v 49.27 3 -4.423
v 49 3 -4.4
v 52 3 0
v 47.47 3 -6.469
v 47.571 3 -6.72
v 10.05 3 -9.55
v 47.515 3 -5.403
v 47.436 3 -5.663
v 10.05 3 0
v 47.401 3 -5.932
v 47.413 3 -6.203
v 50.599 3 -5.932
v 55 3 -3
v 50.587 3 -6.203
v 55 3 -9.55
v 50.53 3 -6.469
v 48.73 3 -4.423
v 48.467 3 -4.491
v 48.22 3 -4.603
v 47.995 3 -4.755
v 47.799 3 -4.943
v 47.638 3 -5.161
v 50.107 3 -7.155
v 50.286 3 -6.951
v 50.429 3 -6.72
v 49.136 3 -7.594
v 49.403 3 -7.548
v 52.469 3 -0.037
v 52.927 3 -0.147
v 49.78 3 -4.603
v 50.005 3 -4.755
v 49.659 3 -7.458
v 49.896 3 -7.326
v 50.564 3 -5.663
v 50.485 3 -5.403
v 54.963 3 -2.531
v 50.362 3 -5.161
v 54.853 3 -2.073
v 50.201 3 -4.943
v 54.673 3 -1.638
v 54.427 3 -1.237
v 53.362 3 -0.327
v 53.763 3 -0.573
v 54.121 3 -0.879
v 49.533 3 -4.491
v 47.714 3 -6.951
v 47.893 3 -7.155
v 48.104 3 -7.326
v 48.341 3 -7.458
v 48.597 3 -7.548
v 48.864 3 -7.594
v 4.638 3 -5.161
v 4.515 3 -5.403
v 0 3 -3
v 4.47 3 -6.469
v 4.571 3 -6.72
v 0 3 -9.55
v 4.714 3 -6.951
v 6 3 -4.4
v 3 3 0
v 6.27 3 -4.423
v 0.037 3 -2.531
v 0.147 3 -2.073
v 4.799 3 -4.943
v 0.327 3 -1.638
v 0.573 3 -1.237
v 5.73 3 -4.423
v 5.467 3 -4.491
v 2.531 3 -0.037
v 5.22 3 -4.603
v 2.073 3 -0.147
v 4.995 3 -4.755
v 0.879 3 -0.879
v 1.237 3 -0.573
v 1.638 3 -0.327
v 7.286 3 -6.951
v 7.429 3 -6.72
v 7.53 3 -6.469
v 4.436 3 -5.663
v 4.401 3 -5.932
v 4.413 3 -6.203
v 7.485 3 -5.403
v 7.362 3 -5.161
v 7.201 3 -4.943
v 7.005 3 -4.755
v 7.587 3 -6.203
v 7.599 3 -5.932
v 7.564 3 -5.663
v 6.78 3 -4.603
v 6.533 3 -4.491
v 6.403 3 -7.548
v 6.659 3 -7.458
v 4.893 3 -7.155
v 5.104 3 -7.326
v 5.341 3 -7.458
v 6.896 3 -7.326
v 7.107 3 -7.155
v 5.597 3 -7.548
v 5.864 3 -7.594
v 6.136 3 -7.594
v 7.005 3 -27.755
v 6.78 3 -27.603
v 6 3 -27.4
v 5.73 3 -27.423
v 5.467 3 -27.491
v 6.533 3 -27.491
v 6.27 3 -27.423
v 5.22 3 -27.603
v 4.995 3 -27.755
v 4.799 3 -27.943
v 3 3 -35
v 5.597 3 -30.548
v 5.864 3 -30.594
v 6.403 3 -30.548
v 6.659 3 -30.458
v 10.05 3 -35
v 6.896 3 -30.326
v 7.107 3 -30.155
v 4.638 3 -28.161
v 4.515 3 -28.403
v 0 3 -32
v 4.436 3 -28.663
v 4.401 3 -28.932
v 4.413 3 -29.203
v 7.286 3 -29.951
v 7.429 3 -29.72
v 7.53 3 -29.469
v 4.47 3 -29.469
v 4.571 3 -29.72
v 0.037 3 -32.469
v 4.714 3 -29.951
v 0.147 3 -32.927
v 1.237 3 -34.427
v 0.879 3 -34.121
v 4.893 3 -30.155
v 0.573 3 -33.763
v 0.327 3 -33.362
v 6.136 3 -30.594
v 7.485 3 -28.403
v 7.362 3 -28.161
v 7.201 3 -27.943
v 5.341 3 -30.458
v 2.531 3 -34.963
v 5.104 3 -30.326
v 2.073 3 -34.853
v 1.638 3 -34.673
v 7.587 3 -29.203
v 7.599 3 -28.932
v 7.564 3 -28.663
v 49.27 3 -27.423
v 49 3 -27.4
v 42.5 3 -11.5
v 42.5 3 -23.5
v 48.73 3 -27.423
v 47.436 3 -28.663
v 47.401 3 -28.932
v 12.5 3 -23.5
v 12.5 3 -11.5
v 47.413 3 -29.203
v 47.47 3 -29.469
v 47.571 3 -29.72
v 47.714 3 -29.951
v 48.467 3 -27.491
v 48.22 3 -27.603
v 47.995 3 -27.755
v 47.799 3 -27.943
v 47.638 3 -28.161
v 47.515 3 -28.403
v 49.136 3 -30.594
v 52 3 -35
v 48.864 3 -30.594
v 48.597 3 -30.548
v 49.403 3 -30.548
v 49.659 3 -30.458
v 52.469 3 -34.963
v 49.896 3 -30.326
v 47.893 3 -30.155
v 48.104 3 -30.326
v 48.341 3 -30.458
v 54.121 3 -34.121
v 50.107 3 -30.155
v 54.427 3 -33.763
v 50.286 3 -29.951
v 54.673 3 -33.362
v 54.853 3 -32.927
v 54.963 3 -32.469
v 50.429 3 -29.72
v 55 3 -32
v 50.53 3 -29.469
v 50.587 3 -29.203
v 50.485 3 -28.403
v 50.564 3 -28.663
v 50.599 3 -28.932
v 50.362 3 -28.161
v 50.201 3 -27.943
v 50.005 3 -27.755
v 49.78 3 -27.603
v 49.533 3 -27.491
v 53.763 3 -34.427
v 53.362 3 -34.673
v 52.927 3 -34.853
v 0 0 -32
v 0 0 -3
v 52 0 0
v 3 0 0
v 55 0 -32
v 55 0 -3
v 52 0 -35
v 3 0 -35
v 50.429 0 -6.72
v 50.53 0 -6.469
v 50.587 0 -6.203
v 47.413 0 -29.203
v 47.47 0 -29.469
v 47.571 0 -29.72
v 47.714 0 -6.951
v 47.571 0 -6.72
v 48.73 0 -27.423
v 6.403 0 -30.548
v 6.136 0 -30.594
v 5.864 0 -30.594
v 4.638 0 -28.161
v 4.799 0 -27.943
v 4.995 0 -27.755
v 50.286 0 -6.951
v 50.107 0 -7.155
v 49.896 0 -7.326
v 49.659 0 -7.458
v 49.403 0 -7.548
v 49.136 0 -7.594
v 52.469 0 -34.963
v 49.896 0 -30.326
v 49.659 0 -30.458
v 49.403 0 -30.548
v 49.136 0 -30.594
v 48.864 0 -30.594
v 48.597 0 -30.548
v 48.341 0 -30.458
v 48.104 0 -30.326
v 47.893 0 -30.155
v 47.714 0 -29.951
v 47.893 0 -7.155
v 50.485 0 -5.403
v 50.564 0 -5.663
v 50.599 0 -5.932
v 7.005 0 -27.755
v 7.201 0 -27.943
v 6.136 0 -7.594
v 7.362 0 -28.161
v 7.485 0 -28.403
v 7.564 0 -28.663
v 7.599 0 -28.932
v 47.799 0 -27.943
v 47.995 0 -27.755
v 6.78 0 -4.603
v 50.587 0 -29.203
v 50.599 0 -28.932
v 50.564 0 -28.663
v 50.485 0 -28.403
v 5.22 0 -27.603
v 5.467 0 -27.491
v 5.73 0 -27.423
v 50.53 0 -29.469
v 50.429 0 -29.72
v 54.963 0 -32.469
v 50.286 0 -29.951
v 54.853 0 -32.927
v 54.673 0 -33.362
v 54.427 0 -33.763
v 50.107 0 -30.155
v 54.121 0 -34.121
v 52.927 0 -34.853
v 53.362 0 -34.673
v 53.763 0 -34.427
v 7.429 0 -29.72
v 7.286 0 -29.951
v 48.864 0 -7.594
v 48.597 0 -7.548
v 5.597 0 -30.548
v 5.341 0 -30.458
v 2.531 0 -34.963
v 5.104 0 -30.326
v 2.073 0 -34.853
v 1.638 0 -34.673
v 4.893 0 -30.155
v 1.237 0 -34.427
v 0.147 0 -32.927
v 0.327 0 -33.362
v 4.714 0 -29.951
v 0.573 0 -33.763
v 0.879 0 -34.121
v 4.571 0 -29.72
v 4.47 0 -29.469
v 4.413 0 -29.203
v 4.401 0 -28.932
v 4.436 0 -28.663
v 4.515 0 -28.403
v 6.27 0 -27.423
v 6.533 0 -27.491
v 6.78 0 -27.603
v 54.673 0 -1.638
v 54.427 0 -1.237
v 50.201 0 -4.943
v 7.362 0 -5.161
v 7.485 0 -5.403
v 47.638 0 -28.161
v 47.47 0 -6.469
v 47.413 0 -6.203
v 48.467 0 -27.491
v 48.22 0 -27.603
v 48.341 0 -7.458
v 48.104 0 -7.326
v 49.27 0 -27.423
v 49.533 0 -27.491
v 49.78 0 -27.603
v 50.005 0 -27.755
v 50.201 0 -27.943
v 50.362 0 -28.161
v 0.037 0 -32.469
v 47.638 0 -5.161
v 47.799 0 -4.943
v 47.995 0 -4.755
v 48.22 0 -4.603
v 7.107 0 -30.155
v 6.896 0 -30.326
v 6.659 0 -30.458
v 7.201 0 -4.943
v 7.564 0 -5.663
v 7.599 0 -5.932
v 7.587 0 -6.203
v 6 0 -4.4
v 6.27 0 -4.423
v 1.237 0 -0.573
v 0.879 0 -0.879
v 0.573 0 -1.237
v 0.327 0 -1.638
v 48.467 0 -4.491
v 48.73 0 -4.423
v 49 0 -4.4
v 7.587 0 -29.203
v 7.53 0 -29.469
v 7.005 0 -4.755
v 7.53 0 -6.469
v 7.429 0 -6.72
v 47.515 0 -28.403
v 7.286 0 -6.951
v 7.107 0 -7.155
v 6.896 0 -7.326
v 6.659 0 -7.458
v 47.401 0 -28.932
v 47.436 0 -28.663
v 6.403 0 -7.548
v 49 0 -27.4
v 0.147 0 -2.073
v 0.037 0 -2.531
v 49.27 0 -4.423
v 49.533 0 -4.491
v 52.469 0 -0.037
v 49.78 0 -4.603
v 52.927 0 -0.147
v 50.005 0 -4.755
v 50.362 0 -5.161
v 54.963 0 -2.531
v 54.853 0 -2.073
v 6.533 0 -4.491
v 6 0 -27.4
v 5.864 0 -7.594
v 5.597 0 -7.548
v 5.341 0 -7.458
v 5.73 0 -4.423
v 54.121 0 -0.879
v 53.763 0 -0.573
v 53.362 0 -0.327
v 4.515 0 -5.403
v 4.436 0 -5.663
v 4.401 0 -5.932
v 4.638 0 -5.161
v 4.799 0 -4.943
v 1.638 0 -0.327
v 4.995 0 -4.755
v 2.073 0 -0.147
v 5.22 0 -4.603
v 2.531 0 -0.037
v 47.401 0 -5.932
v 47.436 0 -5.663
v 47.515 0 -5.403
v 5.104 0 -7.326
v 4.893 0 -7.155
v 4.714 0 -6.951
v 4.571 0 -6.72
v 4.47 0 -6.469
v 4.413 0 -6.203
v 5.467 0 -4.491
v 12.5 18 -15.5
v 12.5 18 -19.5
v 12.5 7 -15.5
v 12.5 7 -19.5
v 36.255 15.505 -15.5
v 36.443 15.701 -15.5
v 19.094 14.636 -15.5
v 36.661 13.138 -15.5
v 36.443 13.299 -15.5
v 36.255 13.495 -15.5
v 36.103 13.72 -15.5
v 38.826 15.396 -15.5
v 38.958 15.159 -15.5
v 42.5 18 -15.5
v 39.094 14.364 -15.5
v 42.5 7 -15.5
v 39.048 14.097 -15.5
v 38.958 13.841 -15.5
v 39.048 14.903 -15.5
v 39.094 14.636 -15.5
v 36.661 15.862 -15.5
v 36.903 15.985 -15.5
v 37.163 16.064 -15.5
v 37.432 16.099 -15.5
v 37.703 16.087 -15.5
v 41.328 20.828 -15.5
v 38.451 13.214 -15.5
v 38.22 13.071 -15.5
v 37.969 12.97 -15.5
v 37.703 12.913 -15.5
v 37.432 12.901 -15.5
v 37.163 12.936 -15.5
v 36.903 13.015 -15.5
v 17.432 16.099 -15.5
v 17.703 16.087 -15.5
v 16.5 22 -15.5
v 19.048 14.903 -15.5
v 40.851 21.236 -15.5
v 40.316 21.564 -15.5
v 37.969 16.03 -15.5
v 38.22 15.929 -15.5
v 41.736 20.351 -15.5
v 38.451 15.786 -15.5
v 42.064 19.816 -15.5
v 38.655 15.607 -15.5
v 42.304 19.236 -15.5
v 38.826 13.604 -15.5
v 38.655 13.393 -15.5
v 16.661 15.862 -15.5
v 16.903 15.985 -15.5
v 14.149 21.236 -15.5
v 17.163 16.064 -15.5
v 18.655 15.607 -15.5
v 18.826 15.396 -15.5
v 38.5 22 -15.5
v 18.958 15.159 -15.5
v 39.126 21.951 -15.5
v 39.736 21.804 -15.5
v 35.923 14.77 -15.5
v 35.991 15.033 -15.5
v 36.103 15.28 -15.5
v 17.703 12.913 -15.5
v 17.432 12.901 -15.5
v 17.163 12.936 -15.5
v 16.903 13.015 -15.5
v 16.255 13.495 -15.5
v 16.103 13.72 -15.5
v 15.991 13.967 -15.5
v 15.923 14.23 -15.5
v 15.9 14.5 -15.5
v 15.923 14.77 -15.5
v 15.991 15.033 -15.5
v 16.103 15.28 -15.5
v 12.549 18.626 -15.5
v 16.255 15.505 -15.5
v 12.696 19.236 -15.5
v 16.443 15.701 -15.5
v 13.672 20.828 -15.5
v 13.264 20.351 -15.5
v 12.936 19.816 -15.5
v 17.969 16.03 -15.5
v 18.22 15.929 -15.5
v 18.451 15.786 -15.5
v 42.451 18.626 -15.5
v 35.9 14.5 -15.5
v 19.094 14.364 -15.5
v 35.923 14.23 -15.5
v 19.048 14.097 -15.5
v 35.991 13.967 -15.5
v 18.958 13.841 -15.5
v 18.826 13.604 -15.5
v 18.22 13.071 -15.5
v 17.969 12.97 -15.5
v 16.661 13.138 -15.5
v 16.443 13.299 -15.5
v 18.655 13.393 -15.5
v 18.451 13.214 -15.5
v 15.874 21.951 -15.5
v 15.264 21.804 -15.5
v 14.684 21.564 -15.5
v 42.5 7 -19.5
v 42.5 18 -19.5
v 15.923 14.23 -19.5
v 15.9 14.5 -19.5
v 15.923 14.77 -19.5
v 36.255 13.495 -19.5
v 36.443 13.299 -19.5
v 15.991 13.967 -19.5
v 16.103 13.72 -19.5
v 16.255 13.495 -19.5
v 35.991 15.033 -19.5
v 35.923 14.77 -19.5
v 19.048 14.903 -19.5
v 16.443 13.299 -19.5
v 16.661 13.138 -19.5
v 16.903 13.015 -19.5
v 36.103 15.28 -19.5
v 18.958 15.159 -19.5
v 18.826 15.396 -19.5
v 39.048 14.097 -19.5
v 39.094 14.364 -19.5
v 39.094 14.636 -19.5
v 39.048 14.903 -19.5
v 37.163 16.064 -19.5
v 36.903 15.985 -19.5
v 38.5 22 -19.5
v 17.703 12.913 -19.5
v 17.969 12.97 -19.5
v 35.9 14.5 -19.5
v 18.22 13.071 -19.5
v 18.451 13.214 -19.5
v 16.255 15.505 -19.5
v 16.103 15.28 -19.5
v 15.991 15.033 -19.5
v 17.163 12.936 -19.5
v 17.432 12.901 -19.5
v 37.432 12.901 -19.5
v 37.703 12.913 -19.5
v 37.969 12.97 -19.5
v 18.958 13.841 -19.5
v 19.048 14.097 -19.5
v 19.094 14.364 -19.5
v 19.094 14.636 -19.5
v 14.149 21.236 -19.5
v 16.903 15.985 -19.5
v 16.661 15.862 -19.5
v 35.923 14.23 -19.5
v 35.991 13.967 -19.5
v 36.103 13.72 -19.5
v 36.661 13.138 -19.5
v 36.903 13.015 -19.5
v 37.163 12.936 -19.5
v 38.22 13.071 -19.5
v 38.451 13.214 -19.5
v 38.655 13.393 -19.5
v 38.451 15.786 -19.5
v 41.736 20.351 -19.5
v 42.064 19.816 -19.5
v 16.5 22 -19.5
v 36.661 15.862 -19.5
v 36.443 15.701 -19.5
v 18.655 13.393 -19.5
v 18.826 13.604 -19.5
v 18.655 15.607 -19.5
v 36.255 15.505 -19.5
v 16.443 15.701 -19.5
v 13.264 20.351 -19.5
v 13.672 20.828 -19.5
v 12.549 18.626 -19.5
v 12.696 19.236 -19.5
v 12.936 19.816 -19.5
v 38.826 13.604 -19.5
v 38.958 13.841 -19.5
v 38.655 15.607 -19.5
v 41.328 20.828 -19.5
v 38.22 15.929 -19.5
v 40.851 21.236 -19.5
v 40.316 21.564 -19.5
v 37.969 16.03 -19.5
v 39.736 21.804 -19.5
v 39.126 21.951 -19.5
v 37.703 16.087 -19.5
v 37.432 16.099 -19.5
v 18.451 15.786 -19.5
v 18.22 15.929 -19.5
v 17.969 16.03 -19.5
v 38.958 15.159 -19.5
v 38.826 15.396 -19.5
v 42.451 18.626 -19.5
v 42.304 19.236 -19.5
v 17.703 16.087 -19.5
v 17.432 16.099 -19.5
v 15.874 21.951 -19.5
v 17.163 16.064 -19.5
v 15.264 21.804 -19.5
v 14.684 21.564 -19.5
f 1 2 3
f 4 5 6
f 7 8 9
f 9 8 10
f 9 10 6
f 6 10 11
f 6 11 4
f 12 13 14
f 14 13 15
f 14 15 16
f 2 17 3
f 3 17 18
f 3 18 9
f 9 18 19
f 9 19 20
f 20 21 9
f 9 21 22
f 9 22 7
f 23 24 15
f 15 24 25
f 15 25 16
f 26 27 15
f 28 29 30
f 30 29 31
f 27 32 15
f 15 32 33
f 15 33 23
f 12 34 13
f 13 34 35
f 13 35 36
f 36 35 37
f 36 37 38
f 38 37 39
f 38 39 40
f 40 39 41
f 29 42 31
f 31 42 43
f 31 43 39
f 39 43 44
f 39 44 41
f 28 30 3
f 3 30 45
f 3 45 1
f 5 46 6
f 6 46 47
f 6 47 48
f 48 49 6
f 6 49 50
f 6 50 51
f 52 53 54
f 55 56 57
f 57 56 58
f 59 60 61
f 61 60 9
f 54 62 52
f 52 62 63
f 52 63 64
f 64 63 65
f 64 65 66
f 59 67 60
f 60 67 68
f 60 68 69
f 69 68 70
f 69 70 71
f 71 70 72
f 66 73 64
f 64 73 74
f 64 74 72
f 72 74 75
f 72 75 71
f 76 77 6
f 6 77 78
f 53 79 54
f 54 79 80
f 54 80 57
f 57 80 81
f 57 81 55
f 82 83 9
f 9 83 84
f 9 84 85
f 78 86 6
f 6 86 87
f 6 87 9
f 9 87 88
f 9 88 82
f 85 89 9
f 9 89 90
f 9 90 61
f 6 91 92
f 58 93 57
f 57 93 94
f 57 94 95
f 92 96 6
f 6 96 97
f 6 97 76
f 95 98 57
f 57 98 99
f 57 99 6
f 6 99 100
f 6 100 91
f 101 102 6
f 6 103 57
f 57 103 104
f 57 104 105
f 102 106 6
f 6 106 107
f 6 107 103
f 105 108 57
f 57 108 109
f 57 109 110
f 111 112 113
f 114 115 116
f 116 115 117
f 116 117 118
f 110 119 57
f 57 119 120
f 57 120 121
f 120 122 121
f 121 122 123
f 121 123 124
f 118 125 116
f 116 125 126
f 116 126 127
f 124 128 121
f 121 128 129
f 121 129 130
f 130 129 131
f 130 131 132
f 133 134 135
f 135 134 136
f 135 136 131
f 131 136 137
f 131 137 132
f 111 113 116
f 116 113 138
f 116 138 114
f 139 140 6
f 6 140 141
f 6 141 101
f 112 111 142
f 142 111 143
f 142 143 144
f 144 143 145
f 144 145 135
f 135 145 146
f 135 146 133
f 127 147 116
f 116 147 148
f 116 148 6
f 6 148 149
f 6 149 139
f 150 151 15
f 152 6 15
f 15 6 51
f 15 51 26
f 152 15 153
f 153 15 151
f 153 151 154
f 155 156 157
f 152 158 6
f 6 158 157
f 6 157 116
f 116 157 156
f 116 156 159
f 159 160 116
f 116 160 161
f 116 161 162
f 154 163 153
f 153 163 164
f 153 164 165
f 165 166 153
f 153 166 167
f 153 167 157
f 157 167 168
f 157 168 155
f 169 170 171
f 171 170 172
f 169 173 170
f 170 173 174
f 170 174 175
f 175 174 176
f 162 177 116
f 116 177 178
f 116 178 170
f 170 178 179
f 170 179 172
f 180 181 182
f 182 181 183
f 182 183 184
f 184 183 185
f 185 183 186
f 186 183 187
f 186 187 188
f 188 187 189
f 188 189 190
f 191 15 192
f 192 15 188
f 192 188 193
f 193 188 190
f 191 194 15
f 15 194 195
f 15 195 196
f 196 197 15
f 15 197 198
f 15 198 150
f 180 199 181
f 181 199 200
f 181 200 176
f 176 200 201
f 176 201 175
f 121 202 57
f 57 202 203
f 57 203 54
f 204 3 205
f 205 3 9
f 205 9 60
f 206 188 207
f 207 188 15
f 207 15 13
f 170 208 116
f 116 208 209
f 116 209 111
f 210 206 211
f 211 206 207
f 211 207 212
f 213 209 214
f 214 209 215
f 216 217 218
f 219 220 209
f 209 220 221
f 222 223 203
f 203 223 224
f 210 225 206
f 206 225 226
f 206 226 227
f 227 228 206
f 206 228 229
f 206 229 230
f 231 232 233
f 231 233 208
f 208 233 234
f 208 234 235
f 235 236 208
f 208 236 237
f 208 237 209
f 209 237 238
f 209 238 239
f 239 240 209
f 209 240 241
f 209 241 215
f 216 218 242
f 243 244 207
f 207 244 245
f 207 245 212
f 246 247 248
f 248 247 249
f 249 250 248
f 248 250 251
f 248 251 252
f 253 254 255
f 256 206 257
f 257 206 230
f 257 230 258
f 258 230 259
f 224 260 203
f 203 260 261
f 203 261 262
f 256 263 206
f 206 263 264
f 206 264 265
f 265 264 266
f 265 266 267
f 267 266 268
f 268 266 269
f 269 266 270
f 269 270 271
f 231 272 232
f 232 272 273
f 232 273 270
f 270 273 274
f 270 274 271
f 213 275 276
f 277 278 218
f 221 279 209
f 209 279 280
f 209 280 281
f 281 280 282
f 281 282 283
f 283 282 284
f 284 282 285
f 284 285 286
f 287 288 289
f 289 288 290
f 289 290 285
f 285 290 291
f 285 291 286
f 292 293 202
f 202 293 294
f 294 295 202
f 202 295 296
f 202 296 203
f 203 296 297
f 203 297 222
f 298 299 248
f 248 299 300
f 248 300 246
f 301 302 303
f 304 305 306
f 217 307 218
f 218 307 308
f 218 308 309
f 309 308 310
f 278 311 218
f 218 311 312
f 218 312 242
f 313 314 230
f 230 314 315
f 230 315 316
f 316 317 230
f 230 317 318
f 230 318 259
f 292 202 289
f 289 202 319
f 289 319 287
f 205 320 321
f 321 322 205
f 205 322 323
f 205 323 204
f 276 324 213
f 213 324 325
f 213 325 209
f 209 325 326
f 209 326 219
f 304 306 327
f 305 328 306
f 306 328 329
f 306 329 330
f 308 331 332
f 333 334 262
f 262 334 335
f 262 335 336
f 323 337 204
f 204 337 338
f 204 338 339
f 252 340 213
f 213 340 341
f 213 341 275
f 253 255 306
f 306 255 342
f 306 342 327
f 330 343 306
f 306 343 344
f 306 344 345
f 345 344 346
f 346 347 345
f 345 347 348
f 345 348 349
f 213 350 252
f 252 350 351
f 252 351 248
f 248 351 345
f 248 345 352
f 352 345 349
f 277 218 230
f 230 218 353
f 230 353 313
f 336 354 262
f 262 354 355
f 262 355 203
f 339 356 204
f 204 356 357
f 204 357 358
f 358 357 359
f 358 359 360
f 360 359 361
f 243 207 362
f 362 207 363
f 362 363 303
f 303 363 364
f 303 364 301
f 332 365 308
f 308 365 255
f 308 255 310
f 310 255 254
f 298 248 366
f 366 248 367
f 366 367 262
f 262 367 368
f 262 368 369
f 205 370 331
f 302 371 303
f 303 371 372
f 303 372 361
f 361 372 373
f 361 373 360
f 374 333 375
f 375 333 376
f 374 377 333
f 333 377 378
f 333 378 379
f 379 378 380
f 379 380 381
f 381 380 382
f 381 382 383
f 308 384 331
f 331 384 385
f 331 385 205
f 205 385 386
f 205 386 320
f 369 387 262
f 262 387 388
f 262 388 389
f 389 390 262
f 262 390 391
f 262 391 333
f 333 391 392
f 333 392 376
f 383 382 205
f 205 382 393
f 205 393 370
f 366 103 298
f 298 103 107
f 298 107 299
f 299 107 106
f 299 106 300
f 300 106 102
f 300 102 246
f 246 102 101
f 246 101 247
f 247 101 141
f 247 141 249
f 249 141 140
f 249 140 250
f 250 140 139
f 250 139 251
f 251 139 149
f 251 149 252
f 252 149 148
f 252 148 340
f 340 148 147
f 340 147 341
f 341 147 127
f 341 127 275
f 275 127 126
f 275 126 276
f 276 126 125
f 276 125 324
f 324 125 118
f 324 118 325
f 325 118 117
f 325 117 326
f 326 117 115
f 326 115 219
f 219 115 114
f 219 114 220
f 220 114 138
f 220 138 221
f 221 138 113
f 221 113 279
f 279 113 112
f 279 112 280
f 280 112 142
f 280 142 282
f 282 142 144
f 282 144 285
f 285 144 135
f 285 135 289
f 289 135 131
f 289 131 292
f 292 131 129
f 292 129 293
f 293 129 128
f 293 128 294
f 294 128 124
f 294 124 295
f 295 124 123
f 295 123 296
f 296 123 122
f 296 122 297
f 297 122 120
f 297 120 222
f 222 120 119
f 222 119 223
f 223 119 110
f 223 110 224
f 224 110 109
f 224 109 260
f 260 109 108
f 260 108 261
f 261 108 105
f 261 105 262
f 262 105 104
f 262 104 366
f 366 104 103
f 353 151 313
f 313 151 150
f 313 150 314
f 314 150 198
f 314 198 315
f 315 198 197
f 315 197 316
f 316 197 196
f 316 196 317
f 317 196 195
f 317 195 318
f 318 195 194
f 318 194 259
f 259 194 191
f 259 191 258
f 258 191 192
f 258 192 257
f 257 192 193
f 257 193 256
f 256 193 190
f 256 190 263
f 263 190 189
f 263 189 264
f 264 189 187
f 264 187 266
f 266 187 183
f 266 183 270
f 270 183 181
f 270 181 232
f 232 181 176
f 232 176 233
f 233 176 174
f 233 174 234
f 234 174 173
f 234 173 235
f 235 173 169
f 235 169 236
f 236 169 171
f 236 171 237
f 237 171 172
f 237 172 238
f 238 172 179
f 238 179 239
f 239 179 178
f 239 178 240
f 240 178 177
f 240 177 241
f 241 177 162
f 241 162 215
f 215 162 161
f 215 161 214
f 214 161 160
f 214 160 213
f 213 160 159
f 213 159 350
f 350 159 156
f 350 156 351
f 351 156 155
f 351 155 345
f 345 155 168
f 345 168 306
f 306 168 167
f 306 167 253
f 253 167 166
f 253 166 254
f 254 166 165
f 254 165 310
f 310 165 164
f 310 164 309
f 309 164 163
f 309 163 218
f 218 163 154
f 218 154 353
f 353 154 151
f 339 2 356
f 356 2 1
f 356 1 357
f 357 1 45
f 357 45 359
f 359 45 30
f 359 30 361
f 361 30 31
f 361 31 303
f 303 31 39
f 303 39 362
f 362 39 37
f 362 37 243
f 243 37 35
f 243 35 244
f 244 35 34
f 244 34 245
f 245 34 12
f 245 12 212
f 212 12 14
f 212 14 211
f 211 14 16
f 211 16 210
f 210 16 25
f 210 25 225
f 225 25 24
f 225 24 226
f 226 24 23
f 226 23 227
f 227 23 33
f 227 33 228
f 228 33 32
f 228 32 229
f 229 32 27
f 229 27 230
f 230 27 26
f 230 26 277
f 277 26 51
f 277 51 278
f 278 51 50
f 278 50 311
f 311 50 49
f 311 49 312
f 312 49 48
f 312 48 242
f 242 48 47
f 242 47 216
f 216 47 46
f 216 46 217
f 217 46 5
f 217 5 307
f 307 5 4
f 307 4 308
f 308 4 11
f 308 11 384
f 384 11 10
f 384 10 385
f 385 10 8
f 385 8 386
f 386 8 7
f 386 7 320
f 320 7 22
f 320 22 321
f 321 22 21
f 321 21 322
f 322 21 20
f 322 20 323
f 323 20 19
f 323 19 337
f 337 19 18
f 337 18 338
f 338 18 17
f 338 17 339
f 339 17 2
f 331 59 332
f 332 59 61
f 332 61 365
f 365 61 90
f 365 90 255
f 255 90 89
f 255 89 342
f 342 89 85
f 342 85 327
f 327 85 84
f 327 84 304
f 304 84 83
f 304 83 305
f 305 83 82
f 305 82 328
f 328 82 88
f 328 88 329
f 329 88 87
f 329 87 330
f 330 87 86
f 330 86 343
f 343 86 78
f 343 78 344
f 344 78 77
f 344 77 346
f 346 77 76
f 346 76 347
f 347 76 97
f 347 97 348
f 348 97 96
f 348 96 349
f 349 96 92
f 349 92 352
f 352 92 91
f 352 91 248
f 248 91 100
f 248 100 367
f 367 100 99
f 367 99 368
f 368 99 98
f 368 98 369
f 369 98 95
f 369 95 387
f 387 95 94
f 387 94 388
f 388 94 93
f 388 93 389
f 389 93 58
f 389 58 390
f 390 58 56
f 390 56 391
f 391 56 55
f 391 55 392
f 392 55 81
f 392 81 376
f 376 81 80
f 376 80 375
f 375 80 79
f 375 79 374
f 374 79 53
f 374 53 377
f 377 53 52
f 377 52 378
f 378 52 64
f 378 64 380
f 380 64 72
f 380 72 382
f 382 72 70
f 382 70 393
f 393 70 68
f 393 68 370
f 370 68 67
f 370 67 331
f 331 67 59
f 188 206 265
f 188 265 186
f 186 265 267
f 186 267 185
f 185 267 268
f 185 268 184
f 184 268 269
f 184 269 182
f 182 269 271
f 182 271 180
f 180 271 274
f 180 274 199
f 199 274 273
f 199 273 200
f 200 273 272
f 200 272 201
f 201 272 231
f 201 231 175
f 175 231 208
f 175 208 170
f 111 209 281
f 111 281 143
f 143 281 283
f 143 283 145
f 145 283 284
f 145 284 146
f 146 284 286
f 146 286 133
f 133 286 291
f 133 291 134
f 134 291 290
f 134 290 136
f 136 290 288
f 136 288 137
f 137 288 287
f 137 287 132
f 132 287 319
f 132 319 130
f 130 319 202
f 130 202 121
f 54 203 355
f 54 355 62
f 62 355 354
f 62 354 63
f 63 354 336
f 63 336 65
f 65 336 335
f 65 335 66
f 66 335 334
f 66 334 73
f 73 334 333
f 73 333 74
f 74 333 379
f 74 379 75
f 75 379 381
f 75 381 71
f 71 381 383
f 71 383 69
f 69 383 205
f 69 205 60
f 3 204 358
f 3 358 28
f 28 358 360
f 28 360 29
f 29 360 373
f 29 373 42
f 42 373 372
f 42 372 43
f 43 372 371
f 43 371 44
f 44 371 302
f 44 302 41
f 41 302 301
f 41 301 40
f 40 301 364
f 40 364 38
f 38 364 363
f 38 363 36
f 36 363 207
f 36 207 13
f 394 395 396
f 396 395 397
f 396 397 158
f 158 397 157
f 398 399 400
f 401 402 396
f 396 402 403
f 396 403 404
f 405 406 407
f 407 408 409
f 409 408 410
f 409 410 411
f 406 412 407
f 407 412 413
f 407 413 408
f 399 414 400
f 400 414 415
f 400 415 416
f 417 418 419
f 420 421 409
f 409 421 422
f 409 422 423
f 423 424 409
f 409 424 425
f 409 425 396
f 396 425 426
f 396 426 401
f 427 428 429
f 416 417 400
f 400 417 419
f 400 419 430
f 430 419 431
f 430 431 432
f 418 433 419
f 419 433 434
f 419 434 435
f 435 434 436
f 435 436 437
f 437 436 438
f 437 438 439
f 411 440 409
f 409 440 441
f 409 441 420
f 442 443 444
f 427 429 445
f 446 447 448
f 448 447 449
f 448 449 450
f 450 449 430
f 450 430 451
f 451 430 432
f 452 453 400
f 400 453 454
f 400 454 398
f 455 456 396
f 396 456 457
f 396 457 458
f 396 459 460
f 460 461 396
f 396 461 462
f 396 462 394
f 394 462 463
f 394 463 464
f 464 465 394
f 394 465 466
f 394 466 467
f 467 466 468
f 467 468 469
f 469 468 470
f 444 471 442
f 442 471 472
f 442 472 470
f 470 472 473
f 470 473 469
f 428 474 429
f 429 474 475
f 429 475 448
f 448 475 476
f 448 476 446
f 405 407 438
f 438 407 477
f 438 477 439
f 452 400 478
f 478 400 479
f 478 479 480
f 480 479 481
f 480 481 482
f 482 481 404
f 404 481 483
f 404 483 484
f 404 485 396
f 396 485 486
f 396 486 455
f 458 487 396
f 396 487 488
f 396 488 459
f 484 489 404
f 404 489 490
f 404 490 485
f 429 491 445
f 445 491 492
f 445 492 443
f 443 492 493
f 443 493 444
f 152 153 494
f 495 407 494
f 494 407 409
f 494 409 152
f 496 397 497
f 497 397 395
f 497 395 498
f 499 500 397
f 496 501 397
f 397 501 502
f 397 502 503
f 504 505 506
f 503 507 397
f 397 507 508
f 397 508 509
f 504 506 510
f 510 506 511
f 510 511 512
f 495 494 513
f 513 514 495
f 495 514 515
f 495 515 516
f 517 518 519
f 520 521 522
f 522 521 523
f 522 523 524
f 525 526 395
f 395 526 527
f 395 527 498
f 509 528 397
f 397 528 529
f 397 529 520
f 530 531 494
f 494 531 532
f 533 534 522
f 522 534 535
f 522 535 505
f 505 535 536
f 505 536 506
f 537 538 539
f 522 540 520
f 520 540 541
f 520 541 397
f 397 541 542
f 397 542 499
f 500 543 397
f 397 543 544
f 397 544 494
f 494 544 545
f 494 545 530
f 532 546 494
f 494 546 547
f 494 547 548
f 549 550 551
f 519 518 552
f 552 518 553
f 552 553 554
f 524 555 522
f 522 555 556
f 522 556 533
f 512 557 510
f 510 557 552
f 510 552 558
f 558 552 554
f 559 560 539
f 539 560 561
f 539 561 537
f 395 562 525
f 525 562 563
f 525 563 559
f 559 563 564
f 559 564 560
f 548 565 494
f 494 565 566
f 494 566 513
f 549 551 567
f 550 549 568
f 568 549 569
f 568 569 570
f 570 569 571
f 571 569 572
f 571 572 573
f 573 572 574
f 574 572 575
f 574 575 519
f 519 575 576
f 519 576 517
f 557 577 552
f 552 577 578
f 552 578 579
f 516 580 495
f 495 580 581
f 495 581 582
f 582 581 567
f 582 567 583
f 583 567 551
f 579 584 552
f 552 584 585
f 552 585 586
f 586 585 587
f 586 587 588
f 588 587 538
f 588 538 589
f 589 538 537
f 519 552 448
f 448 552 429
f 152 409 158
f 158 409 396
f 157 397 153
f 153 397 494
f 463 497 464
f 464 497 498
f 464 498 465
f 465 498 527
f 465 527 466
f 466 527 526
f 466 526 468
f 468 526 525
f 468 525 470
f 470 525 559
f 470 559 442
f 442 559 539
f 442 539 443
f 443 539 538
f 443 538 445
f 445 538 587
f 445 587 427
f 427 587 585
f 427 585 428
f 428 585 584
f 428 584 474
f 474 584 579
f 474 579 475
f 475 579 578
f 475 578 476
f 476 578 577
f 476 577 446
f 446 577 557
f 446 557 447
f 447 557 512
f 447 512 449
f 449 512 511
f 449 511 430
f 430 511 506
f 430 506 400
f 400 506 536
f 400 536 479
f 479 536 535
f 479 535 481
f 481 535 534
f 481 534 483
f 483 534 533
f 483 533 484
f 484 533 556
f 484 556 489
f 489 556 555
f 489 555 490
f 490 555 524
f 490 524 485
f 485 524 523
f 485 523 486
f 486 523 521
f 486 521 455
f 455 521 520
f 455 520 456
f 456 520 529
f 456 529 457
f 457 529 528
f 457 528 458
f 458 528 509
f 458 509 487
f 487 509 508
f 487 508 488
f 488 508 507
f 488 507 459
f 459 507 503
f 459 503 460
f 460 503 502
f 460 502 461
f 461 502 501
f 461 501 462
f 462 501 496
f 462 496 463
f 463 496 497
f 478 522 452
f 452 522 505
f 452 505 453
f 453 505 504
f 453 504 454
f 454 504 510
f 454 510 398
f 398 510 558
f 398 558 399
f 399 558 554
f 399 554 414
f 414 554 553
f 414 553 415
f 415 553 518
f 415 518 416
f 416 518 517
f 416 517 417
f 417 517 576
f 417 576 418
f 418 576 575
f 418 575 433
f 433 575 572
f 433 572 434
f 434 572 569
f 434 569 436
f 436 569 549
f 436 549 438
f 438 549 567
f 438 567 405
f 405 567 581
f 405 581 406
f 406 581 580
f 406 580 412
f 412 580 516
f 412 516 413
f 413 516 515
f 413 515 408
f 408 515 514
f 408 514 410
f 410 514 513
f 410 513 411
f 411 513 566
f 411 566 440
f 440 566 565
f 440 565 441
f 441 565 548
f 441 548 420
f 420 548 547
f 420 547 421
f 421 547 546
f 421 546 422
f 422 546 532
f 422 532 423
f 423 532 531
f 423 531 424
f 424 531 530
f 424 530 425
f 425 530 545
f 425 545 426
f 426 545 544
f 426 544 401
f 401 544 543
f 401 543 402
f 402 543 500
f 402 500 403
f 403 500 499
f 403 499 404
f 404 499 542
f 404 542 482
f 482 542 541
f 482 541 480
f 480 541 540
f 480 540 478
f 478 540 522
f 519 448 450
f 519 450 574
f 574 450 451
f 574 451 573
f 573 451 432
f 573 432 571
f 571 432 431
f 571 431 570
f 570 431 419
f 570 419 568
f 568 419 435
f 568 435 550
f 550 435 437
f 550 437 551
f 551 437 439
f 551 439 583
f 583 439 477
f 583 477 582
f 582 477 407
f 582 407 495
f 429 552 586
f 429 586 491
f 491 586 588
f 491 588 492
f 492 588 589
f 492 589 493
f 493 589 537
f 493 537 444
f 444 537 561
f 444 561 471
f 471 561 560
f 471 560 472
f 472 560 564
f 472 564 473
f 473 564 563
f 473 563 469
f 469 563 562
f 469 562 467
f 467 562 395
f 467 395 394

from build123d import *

# Parameters (mm, degrees)
SKETCH_1_W          = 55
SKETCH_1_H          = 35
EXTRUDE_1_DEPTH     = 3
SKETCH_2_R          = 1.6
CUT_EXTRUDE_1_DEPTH = 3
FILLET_1_R          = 3
SKETCH_3_W          = 30
SKETCH_3_H          = 4
EXTRUDE_2_DEPTH     = 19
CHAMFER_1_SIZE      = 4
SKETCH_4_R          = 1.6
CUT_EXTRUDE_2_DEPTH = 19
FILLET_3_R          = 4


with BuildPart() as part:
    # 草图1 → 凸台-拉伸1 (new body)
    with BuildSketch(Plane(origin=(0, 0, 0), x_dir=(1, 0, 0), z_dir=(0, 1, 0))):
        with Locations((27.5, 17.5)):
            Rectangle(SKETCH_1_W, SKETCH_1_H)
    extrude(amount=EXTRUDE_1_DEPTH)

    # 草图2 → 切除-拉伸1 (cut)
    with BuildSketch(Plane(origin=(0, 3, 0), x_dir=(1, 0, 0), z_dir=(0, 1, 0))):
        with Locations(Location((6, 29, 0), (0, 0, 270))):
            Circle(SKETCH_2_R)
        with Locations(Location((49, 29, 0), (0, 0, 270))):
            Circle(SKETCH_2_R)
        with Locations(Location((49, 6, 0), (0, 0, 270))):
            Circle(SKETCH_2_R)
        with Locations(Location((6, 6, 0), (0, 0, 270))):
            Circle(SKETCH_2_R)
    extrude(amount=-CUT_EXTRUDE_1_DEPTH, mode=Mode.SUBTRACT)

    # 圆角1
    fillet_1_edges = [part.edges().sort_by_distance(p)[0] for p in [
        (0, 1.5, -35),
        (55, 1.5, -35),
        (55, 1.5, 0),
        (0, 1.5, 0),
    ]]
    fillet(fillet_1_edges, radius=FILLET_1_R)

    # 草图3 → 凸台-拉伸2 (add)
    with BuildSketch(Plane(origin=(0, 3, 0), x_dir=(1, 0, 0), z_dir=(0, 1, 0))):
        with Locations((27.5, 17.5)):
            Rectangle(SKETCH_3_W, SKETCH_3_H)
    extrude(amount=EXTRUDE_2_DEPTH)

    # 倒角1
    chamfer_1_edges = [part.edges().sort_by_distance(p)[0] for p in [
        (27.5, 3, -15.5),
        (27.5, 3, -19.5),
    ]]
    chamfer(chamfer_1_edges, length=CHAMFER_1_SIZE)

    # 草图4 → 切除-拉伸2 (cut)
    with BuildSketch(Plane(origin=(0, 0, -19.5), x_dir=(-1, 0, 0), z_dir=(0, 0, -1))):
        with Locations((-37.5, 14.5)):
            Circle(SKETCH_4_R)
        with Locations((-17.5, 14.5)):
            Circle(SKETCH_4_R)
    extrude(amount=-CUT_EXTRUDE_2_DEPTH, mode=Mode.SUBTRACT)

    # 圆角3
    fillet_3_edges = [part.edges().sort_by_distance(p)[0] for p in [
        (12.5, 22, -17.5),
        (42.5, 22, -17.5),
    ]]
    fillet(fillet_3_edges, radius=FILLET_3_R)


solid = part.part
